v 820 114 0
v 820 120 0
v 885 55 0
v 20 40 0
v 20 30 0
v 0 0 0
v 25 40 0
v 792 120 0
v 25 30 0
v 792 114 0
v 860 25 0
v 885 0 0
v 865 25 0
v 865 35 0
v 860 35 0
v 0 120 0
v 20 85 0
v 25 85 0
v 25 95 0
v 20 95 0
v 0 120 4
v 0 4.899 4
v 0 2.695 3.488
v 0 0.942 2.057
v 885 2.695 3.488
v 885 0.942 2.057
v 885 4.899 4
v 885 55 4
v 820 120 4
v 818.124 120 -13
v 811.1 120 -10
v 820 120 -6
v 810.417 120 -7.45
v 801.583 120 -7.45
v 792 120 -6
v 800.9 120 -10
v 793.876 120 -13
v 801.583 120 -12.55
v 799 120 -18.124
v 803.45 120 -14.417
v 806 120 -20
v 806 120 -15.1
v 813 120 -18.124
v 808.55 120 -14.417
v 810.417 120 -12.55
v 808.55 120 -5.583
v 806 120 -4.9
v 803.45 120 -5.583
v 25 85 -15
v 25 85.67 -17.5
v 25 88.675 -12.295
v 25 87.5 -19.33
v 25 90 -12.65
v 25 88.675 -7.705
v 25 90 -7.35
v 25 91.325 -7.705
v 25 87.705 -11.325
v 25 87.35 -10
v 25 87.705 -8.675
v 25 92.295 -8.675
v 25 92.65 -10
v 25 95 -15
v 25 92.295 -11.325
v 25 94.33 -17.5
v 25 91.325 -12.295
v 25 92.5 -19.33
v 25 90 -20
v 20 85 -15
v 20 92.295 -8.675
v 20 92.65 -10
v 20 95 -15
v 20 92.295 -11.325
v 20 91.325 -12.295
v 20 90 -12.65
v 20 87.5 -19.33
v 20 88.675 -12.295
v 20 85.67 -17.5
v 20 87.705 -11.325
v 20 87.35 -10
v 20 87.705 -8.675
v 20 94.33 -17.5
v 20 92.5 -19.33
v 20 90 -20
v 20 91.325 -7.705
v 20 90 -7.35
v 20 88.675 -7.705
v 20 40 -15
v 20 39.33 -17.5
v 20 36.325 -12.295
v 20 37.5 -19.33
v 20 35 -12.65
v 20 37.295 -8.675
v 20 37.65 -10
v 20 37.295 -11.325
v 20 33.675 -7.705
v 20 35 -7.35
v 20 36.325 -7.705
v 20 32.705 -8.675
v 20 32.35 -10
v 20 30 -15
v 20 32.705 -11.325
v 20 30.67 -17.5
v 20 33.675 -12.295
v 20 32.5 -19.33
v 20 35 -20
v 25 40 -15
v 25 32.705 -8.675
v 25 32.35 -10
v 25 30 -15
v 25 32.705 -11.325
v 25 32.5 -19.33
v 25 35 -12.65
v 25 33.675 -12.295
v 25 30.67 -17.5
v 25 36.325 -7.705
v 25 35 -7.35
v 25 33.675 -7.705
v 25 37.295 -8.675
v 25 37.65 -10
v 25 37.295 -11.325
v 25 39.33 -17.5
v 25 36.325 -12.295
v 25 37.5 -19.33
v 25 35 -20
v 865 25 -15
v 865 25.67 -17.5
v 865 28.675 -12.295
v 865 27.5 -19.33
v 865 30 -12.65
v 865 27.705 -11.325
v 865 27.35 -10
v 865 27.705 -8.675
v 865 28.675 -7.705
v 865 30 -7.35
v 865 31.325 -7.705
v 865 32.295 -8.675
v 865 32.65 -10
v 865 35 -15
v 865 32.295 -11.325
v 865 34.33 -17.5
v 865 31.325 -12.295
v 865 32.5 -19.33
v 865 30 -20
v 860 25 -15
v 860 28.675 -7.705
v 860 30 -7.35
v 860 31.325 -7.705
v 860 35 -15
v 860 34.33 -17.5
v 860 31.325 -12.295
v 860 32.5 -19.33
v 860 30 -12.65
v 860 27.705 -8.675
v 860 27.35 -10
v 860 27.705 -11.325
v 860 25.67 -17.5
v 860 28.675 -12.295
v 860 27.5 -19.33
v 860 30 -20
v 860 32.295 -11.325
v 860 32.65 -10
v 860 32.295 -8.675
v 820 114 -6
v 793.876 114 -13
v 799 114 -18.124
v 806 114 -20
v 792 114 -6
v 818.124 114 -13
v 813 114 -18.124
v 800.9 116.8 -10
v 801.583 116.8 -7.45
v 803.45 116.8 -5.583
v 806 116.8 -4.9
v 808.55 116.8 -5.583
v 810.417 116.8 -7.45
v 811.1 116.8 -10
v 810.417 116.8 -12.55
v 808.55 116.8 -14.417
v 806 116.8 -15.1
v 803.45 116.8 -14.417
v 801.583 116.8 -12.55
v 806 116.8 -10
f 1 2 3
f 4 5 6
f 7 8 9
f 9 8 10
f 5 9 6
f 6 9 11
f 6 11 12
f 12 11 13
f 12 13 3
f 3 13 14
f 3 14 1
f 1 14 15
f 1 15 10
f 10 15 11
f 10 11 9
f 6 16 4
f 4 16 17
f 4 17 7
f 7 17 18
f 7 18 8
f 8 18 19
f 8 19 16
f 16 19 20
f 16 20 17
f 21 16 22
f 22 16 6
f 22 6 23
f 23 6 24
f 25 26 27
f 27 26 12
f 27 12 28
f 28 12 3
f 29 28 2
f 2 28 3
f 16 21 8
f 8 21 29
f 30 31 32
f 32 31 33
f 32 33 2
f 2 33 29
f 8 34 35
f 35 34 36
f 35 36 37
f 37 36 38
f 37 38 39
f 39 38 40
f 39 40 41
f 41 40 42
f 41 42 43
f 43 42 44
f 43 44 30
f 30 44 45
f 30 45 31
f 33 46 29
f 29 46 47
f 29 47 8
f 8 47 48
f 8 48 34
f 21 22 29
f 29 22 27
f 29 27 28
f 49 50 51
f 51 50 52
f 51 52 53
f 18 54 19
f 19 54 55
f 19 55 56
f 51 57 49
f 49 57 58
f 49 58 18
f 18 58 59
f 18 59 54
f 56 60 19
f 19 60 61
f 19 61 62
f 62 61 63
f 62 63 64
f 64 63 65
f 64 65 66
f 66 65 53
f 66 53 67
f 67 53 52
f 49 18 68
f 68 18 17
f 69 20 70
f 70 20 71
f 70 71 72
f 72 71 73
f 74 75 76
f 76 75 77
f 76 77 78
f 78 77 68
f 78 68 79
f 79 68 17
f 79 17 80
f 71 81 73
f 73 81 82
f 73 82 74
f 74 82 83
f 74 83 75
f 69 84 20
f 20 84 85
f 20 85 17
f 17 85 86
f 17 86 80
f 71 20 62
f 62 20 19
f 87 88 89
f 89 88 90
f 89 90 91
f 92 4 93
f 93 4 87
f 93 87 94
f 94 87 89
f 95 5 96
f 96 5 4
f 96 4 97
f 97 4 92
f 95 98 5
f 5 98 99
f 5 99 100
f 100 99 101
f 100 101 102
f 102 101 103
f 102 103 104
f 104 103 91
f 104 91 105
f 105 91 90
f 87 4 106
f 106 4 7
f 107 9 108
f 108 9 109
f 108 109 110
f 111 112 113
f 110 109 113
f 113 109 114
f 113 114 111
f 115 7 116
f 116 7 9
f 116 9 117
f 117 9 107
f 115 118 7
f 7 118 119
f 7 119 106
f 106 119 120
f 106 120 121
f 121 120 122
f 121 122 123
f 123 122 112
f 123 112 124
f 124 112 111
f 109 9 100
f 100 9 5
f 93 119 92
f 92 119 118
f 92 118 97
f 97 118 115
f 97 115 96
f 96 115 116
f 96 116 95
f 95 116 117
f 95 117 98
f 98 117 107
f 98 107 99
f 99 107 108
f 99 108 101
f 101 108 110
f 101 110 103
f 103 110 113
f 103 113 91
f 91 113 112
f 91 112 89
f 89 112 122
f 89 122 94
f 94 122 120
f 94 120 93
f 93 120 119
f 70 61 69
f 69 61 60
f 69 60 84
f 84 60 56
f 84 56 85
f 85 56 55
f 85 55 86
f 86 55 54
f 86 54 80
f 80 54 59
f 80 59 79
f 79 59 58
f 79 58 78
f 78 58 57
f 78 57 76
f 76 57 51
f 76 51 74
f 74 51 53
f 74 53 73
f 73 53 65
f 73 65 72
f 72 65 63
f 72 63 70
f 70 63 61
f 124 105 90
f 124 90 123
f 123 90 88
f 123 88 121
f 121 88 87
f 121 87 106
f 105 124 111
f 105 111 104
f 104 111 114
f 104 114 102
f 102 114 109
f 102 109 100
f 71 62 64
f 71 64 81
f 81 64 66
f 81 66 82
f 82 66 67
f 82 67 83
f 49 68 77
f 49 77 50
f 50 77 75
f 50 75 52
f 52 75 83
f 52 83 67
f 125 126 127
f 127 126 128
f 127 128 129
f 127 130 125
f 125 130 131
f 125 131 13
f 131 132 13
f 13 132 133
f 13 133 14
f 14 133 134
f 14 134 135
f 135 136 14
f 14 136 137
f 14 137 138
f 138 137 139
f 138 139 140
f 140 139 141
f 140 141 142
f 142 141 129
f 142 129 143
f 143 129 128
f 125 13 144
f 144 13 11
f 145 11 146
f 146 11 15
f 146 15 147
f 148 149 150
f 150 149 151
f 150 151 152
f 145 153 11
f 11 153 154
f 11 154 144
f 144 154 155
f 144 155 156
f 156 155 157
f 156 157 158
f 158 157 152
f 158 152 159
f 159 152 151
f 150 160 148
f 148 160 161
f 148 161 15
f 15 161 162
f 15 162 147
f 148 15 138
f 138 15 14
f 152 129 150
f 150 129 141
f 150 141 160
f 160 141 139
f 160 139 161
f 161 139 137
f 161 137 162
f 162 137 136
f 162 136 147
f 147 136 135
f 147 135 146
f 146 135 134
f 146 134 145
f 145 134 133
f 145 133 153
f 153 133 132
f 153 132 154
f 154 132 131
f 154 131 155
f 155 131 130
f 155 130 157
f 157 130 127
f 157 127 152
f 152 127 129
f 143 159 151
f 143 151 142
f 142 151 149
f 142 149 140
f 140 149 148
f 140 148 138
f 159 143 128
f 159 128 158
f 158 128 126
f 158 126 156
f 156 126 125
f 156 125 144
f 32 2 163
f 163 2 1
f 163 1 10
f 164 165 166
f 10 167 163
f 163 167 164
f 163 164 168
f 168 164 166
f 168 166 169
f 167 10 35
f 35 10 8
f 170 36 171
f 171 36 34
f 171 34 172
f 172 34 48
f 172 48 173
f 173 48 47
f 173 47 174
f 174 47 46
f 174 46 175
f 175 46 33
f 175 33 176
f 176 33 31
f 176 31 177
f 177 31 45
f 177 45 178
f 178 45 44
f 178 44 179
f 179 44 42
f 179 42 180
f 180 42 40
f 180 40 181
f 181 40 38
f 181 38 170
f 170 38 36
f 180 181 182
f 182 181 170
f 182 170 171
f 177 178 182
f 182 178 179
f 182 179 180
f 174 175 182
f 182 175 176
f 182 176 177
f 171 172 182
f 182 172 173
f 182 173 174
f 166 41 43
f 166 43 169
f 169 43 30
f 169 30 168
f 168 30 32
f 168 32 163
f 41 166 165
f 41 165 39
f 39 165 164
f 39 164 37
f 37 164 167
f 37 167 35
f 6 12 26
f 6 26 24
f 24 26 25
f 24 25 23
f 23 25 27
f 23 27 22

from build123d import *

# Parameters (mm, degrees)
BOSS_EXTRUDE1_DEPTH = 4
SKETCH2_W           = 5
SKETCH2_H           = 10
BOSS_EXTRUDE2_DEPTH = 20
SKETCH3_R           = 2.65
CUT_EXTRUDE1_DEPTH  = 20
FILLET1_R           = 5
SKETCH4_W           = 5
SKETCH4_H           = 10
BOSS_EXTRUDE3_DEPTH = 20
SKETCH5_R           = 2.65
CUT_EXTRUDE2_DEPTH  = 20
FILLET2_R           = 5
SKETCH6_W           = 28
SKETCH6_H           = 6
BOSS_EXTRUDE4_DEPTH = 20
SKETCH7_R           = 5.1
CUT_EXTRUDE3_DEPTH  = 3.2
FILLET3_R           = 14
FILLET4_R           = 5


# Some blends are built 0.0001 mm under size
with BuildPart() as part:
    # Sketch1 → Boss-Extrude1 (new body)
    with BuildSketch(Plane.XY):
        Polygon((0, 0), (885, 0), (885, 55), (820, 120), (0, 120), align=None)
    extrude(amount=BOSS_EXTRUDE1_DEPTH)

    # Sketch2 → Boss-Extrude2 (add)
    with BuildSketch(Plane(origin=(0, 0, 0), x_dir=(-1, 0, 0), z_dir=(0, 0, -1))):
        with Locations((-22.5, 90)):
            Rectangle(SKETCH2_W, SKETCH2_H)
        with Locations((-22.5, 35)):
            Rectangle(SKETCH2_W, SKETCH2_H)
    extrude(amount=BOSS_EXTRUDE2_DEPTH)

    # Sketch3 → Cut-Extrude1 (cut)
    with BuildSketch(Plane(origin=(25, 0, 0), x_dir=(0, 0, -1), z_dir=(1, 0, 0))):
        with Locations(Location((10, 90, 0), (0, 0, 90))):
            Circle(SKETCH3_R)
        with Locations(Location((10, 35, 0), (0, 0, 90))):
            Circle(SKETCH3_R)
    extrude(amount=-CUT_EXTRUDE1_DEPTH, mode=Mode.SUBTRACT)

    # Fillet1
    fillet1_edges = [part.edges().sort_by_distance(p)[0] for p in [
        (22.5, 30, -20),
        (22.5, 40, -20),
        (22.5, 85, -20),
        (22.5, 95, -20),
    ]]
    fillet(fillet1_edges, radius=FILLET1_R - 0.0001)  # a hair under: the kernel refuses the full size

    # Sketch4 → Boss-Extrude3 (add)
    with BuildSketch(Plane(origin=(0, 0, 0), x_dir=(-1, 0, 0), z_dir=(0, 0, -1))):
        with Locations((-862.5, 30)):
            Rectangle(SKETCH4_W, SKETCH4_H)
    extrude(amount=BOSS_EXTRUDE3_DEPTH)

    # Sketch5 → Cut-Extrude2 (cut)
    with BuildSketch(Plane(origin=(865, 0, 0), x_dir=(0, 0, -1), z_dir=(1, 0, 0))):
        with Locations((10, 30)):
            Circle(SKETCH5_R)
    extrude(amount=-CUT_EXTRUDE2_DEPTH, mode=Mode.SUBTRACT)

    # Fillet2
    fillet2_edges = [part.edges().sort_by_distance(p)[0] for p in [
        (862.5, 25, -20),
        (862.5, 35, -20),
    ]]
    fillet(fillet2_edges, radius=FILLET2_R - 0.0001)  # a hair under: the kernel refuses the full size

    # Sketch6 → Boss-Extrude4 (add)
    with BuildSketch(Plane(origin=(0, 0, 0), x_dir=(-1, 0, 0), z_dir=(0, 0, -1))):
        with Locations((-806, 117)):
            Rectangle(SKETCH6_W, SKETCH6_H)
    extrude(amount=BOSS_EXTRUDE4_DEPTH)

    # Sketch7 → Cut-Extrude3 (cut)
    with BuildSketch(Plane(origin=(0, 120, 0), x_dir=(1, 0, 0), z_dir=(0, 1, 0))):
        with Locations(Location((806, 10, 0), (0, 0, 180))):
            Circle(SKETCH7_R)
    extrude(amount=-CUT_EXTRUDE3_DEPTH, mode=Mode.SUBTRACT)

    # Fillet3
    fillet3_edges = [part.edges().sort_by_distance(p)[0] for p in [
        (792, 117, -20),
        (820, 117, -20),
    ]]
    fillet(fillet3_edges, radius=FILLET3_R - 0.0001)  # a hair under: the kernel refuses the full size

    # Fillet4
    # the kernel refuses this fillet: 5 mm, written as the material it takes off along each edge
    with BuildSketch(Plane(origin=(-12.247448714, 0, 4), x_dir=(0, 1, 0), z_dir=(1, 0, 0))) as fillet4_piece_1:
        with BuildLine():
            CenterArc((4.898979486, -5), FILLET4_R, 90, 78.463040967)
            Line((0, -4), (-0.09797959, -3.98))
            ThreePointArc((-0.09797959, -3.98), (-0.1, -2), (-0.1, 0))
            Line((-0.1, 0), (0, 0.1))
            Line((0, 0.1), (4.898979486, 0.1))
            Line((4.898979486, 0.1), (4.898979486, 0))
        make_face()
    extrude(amount=909.494897428, mode=Mode.SUBTRACT)


solid = part.part
